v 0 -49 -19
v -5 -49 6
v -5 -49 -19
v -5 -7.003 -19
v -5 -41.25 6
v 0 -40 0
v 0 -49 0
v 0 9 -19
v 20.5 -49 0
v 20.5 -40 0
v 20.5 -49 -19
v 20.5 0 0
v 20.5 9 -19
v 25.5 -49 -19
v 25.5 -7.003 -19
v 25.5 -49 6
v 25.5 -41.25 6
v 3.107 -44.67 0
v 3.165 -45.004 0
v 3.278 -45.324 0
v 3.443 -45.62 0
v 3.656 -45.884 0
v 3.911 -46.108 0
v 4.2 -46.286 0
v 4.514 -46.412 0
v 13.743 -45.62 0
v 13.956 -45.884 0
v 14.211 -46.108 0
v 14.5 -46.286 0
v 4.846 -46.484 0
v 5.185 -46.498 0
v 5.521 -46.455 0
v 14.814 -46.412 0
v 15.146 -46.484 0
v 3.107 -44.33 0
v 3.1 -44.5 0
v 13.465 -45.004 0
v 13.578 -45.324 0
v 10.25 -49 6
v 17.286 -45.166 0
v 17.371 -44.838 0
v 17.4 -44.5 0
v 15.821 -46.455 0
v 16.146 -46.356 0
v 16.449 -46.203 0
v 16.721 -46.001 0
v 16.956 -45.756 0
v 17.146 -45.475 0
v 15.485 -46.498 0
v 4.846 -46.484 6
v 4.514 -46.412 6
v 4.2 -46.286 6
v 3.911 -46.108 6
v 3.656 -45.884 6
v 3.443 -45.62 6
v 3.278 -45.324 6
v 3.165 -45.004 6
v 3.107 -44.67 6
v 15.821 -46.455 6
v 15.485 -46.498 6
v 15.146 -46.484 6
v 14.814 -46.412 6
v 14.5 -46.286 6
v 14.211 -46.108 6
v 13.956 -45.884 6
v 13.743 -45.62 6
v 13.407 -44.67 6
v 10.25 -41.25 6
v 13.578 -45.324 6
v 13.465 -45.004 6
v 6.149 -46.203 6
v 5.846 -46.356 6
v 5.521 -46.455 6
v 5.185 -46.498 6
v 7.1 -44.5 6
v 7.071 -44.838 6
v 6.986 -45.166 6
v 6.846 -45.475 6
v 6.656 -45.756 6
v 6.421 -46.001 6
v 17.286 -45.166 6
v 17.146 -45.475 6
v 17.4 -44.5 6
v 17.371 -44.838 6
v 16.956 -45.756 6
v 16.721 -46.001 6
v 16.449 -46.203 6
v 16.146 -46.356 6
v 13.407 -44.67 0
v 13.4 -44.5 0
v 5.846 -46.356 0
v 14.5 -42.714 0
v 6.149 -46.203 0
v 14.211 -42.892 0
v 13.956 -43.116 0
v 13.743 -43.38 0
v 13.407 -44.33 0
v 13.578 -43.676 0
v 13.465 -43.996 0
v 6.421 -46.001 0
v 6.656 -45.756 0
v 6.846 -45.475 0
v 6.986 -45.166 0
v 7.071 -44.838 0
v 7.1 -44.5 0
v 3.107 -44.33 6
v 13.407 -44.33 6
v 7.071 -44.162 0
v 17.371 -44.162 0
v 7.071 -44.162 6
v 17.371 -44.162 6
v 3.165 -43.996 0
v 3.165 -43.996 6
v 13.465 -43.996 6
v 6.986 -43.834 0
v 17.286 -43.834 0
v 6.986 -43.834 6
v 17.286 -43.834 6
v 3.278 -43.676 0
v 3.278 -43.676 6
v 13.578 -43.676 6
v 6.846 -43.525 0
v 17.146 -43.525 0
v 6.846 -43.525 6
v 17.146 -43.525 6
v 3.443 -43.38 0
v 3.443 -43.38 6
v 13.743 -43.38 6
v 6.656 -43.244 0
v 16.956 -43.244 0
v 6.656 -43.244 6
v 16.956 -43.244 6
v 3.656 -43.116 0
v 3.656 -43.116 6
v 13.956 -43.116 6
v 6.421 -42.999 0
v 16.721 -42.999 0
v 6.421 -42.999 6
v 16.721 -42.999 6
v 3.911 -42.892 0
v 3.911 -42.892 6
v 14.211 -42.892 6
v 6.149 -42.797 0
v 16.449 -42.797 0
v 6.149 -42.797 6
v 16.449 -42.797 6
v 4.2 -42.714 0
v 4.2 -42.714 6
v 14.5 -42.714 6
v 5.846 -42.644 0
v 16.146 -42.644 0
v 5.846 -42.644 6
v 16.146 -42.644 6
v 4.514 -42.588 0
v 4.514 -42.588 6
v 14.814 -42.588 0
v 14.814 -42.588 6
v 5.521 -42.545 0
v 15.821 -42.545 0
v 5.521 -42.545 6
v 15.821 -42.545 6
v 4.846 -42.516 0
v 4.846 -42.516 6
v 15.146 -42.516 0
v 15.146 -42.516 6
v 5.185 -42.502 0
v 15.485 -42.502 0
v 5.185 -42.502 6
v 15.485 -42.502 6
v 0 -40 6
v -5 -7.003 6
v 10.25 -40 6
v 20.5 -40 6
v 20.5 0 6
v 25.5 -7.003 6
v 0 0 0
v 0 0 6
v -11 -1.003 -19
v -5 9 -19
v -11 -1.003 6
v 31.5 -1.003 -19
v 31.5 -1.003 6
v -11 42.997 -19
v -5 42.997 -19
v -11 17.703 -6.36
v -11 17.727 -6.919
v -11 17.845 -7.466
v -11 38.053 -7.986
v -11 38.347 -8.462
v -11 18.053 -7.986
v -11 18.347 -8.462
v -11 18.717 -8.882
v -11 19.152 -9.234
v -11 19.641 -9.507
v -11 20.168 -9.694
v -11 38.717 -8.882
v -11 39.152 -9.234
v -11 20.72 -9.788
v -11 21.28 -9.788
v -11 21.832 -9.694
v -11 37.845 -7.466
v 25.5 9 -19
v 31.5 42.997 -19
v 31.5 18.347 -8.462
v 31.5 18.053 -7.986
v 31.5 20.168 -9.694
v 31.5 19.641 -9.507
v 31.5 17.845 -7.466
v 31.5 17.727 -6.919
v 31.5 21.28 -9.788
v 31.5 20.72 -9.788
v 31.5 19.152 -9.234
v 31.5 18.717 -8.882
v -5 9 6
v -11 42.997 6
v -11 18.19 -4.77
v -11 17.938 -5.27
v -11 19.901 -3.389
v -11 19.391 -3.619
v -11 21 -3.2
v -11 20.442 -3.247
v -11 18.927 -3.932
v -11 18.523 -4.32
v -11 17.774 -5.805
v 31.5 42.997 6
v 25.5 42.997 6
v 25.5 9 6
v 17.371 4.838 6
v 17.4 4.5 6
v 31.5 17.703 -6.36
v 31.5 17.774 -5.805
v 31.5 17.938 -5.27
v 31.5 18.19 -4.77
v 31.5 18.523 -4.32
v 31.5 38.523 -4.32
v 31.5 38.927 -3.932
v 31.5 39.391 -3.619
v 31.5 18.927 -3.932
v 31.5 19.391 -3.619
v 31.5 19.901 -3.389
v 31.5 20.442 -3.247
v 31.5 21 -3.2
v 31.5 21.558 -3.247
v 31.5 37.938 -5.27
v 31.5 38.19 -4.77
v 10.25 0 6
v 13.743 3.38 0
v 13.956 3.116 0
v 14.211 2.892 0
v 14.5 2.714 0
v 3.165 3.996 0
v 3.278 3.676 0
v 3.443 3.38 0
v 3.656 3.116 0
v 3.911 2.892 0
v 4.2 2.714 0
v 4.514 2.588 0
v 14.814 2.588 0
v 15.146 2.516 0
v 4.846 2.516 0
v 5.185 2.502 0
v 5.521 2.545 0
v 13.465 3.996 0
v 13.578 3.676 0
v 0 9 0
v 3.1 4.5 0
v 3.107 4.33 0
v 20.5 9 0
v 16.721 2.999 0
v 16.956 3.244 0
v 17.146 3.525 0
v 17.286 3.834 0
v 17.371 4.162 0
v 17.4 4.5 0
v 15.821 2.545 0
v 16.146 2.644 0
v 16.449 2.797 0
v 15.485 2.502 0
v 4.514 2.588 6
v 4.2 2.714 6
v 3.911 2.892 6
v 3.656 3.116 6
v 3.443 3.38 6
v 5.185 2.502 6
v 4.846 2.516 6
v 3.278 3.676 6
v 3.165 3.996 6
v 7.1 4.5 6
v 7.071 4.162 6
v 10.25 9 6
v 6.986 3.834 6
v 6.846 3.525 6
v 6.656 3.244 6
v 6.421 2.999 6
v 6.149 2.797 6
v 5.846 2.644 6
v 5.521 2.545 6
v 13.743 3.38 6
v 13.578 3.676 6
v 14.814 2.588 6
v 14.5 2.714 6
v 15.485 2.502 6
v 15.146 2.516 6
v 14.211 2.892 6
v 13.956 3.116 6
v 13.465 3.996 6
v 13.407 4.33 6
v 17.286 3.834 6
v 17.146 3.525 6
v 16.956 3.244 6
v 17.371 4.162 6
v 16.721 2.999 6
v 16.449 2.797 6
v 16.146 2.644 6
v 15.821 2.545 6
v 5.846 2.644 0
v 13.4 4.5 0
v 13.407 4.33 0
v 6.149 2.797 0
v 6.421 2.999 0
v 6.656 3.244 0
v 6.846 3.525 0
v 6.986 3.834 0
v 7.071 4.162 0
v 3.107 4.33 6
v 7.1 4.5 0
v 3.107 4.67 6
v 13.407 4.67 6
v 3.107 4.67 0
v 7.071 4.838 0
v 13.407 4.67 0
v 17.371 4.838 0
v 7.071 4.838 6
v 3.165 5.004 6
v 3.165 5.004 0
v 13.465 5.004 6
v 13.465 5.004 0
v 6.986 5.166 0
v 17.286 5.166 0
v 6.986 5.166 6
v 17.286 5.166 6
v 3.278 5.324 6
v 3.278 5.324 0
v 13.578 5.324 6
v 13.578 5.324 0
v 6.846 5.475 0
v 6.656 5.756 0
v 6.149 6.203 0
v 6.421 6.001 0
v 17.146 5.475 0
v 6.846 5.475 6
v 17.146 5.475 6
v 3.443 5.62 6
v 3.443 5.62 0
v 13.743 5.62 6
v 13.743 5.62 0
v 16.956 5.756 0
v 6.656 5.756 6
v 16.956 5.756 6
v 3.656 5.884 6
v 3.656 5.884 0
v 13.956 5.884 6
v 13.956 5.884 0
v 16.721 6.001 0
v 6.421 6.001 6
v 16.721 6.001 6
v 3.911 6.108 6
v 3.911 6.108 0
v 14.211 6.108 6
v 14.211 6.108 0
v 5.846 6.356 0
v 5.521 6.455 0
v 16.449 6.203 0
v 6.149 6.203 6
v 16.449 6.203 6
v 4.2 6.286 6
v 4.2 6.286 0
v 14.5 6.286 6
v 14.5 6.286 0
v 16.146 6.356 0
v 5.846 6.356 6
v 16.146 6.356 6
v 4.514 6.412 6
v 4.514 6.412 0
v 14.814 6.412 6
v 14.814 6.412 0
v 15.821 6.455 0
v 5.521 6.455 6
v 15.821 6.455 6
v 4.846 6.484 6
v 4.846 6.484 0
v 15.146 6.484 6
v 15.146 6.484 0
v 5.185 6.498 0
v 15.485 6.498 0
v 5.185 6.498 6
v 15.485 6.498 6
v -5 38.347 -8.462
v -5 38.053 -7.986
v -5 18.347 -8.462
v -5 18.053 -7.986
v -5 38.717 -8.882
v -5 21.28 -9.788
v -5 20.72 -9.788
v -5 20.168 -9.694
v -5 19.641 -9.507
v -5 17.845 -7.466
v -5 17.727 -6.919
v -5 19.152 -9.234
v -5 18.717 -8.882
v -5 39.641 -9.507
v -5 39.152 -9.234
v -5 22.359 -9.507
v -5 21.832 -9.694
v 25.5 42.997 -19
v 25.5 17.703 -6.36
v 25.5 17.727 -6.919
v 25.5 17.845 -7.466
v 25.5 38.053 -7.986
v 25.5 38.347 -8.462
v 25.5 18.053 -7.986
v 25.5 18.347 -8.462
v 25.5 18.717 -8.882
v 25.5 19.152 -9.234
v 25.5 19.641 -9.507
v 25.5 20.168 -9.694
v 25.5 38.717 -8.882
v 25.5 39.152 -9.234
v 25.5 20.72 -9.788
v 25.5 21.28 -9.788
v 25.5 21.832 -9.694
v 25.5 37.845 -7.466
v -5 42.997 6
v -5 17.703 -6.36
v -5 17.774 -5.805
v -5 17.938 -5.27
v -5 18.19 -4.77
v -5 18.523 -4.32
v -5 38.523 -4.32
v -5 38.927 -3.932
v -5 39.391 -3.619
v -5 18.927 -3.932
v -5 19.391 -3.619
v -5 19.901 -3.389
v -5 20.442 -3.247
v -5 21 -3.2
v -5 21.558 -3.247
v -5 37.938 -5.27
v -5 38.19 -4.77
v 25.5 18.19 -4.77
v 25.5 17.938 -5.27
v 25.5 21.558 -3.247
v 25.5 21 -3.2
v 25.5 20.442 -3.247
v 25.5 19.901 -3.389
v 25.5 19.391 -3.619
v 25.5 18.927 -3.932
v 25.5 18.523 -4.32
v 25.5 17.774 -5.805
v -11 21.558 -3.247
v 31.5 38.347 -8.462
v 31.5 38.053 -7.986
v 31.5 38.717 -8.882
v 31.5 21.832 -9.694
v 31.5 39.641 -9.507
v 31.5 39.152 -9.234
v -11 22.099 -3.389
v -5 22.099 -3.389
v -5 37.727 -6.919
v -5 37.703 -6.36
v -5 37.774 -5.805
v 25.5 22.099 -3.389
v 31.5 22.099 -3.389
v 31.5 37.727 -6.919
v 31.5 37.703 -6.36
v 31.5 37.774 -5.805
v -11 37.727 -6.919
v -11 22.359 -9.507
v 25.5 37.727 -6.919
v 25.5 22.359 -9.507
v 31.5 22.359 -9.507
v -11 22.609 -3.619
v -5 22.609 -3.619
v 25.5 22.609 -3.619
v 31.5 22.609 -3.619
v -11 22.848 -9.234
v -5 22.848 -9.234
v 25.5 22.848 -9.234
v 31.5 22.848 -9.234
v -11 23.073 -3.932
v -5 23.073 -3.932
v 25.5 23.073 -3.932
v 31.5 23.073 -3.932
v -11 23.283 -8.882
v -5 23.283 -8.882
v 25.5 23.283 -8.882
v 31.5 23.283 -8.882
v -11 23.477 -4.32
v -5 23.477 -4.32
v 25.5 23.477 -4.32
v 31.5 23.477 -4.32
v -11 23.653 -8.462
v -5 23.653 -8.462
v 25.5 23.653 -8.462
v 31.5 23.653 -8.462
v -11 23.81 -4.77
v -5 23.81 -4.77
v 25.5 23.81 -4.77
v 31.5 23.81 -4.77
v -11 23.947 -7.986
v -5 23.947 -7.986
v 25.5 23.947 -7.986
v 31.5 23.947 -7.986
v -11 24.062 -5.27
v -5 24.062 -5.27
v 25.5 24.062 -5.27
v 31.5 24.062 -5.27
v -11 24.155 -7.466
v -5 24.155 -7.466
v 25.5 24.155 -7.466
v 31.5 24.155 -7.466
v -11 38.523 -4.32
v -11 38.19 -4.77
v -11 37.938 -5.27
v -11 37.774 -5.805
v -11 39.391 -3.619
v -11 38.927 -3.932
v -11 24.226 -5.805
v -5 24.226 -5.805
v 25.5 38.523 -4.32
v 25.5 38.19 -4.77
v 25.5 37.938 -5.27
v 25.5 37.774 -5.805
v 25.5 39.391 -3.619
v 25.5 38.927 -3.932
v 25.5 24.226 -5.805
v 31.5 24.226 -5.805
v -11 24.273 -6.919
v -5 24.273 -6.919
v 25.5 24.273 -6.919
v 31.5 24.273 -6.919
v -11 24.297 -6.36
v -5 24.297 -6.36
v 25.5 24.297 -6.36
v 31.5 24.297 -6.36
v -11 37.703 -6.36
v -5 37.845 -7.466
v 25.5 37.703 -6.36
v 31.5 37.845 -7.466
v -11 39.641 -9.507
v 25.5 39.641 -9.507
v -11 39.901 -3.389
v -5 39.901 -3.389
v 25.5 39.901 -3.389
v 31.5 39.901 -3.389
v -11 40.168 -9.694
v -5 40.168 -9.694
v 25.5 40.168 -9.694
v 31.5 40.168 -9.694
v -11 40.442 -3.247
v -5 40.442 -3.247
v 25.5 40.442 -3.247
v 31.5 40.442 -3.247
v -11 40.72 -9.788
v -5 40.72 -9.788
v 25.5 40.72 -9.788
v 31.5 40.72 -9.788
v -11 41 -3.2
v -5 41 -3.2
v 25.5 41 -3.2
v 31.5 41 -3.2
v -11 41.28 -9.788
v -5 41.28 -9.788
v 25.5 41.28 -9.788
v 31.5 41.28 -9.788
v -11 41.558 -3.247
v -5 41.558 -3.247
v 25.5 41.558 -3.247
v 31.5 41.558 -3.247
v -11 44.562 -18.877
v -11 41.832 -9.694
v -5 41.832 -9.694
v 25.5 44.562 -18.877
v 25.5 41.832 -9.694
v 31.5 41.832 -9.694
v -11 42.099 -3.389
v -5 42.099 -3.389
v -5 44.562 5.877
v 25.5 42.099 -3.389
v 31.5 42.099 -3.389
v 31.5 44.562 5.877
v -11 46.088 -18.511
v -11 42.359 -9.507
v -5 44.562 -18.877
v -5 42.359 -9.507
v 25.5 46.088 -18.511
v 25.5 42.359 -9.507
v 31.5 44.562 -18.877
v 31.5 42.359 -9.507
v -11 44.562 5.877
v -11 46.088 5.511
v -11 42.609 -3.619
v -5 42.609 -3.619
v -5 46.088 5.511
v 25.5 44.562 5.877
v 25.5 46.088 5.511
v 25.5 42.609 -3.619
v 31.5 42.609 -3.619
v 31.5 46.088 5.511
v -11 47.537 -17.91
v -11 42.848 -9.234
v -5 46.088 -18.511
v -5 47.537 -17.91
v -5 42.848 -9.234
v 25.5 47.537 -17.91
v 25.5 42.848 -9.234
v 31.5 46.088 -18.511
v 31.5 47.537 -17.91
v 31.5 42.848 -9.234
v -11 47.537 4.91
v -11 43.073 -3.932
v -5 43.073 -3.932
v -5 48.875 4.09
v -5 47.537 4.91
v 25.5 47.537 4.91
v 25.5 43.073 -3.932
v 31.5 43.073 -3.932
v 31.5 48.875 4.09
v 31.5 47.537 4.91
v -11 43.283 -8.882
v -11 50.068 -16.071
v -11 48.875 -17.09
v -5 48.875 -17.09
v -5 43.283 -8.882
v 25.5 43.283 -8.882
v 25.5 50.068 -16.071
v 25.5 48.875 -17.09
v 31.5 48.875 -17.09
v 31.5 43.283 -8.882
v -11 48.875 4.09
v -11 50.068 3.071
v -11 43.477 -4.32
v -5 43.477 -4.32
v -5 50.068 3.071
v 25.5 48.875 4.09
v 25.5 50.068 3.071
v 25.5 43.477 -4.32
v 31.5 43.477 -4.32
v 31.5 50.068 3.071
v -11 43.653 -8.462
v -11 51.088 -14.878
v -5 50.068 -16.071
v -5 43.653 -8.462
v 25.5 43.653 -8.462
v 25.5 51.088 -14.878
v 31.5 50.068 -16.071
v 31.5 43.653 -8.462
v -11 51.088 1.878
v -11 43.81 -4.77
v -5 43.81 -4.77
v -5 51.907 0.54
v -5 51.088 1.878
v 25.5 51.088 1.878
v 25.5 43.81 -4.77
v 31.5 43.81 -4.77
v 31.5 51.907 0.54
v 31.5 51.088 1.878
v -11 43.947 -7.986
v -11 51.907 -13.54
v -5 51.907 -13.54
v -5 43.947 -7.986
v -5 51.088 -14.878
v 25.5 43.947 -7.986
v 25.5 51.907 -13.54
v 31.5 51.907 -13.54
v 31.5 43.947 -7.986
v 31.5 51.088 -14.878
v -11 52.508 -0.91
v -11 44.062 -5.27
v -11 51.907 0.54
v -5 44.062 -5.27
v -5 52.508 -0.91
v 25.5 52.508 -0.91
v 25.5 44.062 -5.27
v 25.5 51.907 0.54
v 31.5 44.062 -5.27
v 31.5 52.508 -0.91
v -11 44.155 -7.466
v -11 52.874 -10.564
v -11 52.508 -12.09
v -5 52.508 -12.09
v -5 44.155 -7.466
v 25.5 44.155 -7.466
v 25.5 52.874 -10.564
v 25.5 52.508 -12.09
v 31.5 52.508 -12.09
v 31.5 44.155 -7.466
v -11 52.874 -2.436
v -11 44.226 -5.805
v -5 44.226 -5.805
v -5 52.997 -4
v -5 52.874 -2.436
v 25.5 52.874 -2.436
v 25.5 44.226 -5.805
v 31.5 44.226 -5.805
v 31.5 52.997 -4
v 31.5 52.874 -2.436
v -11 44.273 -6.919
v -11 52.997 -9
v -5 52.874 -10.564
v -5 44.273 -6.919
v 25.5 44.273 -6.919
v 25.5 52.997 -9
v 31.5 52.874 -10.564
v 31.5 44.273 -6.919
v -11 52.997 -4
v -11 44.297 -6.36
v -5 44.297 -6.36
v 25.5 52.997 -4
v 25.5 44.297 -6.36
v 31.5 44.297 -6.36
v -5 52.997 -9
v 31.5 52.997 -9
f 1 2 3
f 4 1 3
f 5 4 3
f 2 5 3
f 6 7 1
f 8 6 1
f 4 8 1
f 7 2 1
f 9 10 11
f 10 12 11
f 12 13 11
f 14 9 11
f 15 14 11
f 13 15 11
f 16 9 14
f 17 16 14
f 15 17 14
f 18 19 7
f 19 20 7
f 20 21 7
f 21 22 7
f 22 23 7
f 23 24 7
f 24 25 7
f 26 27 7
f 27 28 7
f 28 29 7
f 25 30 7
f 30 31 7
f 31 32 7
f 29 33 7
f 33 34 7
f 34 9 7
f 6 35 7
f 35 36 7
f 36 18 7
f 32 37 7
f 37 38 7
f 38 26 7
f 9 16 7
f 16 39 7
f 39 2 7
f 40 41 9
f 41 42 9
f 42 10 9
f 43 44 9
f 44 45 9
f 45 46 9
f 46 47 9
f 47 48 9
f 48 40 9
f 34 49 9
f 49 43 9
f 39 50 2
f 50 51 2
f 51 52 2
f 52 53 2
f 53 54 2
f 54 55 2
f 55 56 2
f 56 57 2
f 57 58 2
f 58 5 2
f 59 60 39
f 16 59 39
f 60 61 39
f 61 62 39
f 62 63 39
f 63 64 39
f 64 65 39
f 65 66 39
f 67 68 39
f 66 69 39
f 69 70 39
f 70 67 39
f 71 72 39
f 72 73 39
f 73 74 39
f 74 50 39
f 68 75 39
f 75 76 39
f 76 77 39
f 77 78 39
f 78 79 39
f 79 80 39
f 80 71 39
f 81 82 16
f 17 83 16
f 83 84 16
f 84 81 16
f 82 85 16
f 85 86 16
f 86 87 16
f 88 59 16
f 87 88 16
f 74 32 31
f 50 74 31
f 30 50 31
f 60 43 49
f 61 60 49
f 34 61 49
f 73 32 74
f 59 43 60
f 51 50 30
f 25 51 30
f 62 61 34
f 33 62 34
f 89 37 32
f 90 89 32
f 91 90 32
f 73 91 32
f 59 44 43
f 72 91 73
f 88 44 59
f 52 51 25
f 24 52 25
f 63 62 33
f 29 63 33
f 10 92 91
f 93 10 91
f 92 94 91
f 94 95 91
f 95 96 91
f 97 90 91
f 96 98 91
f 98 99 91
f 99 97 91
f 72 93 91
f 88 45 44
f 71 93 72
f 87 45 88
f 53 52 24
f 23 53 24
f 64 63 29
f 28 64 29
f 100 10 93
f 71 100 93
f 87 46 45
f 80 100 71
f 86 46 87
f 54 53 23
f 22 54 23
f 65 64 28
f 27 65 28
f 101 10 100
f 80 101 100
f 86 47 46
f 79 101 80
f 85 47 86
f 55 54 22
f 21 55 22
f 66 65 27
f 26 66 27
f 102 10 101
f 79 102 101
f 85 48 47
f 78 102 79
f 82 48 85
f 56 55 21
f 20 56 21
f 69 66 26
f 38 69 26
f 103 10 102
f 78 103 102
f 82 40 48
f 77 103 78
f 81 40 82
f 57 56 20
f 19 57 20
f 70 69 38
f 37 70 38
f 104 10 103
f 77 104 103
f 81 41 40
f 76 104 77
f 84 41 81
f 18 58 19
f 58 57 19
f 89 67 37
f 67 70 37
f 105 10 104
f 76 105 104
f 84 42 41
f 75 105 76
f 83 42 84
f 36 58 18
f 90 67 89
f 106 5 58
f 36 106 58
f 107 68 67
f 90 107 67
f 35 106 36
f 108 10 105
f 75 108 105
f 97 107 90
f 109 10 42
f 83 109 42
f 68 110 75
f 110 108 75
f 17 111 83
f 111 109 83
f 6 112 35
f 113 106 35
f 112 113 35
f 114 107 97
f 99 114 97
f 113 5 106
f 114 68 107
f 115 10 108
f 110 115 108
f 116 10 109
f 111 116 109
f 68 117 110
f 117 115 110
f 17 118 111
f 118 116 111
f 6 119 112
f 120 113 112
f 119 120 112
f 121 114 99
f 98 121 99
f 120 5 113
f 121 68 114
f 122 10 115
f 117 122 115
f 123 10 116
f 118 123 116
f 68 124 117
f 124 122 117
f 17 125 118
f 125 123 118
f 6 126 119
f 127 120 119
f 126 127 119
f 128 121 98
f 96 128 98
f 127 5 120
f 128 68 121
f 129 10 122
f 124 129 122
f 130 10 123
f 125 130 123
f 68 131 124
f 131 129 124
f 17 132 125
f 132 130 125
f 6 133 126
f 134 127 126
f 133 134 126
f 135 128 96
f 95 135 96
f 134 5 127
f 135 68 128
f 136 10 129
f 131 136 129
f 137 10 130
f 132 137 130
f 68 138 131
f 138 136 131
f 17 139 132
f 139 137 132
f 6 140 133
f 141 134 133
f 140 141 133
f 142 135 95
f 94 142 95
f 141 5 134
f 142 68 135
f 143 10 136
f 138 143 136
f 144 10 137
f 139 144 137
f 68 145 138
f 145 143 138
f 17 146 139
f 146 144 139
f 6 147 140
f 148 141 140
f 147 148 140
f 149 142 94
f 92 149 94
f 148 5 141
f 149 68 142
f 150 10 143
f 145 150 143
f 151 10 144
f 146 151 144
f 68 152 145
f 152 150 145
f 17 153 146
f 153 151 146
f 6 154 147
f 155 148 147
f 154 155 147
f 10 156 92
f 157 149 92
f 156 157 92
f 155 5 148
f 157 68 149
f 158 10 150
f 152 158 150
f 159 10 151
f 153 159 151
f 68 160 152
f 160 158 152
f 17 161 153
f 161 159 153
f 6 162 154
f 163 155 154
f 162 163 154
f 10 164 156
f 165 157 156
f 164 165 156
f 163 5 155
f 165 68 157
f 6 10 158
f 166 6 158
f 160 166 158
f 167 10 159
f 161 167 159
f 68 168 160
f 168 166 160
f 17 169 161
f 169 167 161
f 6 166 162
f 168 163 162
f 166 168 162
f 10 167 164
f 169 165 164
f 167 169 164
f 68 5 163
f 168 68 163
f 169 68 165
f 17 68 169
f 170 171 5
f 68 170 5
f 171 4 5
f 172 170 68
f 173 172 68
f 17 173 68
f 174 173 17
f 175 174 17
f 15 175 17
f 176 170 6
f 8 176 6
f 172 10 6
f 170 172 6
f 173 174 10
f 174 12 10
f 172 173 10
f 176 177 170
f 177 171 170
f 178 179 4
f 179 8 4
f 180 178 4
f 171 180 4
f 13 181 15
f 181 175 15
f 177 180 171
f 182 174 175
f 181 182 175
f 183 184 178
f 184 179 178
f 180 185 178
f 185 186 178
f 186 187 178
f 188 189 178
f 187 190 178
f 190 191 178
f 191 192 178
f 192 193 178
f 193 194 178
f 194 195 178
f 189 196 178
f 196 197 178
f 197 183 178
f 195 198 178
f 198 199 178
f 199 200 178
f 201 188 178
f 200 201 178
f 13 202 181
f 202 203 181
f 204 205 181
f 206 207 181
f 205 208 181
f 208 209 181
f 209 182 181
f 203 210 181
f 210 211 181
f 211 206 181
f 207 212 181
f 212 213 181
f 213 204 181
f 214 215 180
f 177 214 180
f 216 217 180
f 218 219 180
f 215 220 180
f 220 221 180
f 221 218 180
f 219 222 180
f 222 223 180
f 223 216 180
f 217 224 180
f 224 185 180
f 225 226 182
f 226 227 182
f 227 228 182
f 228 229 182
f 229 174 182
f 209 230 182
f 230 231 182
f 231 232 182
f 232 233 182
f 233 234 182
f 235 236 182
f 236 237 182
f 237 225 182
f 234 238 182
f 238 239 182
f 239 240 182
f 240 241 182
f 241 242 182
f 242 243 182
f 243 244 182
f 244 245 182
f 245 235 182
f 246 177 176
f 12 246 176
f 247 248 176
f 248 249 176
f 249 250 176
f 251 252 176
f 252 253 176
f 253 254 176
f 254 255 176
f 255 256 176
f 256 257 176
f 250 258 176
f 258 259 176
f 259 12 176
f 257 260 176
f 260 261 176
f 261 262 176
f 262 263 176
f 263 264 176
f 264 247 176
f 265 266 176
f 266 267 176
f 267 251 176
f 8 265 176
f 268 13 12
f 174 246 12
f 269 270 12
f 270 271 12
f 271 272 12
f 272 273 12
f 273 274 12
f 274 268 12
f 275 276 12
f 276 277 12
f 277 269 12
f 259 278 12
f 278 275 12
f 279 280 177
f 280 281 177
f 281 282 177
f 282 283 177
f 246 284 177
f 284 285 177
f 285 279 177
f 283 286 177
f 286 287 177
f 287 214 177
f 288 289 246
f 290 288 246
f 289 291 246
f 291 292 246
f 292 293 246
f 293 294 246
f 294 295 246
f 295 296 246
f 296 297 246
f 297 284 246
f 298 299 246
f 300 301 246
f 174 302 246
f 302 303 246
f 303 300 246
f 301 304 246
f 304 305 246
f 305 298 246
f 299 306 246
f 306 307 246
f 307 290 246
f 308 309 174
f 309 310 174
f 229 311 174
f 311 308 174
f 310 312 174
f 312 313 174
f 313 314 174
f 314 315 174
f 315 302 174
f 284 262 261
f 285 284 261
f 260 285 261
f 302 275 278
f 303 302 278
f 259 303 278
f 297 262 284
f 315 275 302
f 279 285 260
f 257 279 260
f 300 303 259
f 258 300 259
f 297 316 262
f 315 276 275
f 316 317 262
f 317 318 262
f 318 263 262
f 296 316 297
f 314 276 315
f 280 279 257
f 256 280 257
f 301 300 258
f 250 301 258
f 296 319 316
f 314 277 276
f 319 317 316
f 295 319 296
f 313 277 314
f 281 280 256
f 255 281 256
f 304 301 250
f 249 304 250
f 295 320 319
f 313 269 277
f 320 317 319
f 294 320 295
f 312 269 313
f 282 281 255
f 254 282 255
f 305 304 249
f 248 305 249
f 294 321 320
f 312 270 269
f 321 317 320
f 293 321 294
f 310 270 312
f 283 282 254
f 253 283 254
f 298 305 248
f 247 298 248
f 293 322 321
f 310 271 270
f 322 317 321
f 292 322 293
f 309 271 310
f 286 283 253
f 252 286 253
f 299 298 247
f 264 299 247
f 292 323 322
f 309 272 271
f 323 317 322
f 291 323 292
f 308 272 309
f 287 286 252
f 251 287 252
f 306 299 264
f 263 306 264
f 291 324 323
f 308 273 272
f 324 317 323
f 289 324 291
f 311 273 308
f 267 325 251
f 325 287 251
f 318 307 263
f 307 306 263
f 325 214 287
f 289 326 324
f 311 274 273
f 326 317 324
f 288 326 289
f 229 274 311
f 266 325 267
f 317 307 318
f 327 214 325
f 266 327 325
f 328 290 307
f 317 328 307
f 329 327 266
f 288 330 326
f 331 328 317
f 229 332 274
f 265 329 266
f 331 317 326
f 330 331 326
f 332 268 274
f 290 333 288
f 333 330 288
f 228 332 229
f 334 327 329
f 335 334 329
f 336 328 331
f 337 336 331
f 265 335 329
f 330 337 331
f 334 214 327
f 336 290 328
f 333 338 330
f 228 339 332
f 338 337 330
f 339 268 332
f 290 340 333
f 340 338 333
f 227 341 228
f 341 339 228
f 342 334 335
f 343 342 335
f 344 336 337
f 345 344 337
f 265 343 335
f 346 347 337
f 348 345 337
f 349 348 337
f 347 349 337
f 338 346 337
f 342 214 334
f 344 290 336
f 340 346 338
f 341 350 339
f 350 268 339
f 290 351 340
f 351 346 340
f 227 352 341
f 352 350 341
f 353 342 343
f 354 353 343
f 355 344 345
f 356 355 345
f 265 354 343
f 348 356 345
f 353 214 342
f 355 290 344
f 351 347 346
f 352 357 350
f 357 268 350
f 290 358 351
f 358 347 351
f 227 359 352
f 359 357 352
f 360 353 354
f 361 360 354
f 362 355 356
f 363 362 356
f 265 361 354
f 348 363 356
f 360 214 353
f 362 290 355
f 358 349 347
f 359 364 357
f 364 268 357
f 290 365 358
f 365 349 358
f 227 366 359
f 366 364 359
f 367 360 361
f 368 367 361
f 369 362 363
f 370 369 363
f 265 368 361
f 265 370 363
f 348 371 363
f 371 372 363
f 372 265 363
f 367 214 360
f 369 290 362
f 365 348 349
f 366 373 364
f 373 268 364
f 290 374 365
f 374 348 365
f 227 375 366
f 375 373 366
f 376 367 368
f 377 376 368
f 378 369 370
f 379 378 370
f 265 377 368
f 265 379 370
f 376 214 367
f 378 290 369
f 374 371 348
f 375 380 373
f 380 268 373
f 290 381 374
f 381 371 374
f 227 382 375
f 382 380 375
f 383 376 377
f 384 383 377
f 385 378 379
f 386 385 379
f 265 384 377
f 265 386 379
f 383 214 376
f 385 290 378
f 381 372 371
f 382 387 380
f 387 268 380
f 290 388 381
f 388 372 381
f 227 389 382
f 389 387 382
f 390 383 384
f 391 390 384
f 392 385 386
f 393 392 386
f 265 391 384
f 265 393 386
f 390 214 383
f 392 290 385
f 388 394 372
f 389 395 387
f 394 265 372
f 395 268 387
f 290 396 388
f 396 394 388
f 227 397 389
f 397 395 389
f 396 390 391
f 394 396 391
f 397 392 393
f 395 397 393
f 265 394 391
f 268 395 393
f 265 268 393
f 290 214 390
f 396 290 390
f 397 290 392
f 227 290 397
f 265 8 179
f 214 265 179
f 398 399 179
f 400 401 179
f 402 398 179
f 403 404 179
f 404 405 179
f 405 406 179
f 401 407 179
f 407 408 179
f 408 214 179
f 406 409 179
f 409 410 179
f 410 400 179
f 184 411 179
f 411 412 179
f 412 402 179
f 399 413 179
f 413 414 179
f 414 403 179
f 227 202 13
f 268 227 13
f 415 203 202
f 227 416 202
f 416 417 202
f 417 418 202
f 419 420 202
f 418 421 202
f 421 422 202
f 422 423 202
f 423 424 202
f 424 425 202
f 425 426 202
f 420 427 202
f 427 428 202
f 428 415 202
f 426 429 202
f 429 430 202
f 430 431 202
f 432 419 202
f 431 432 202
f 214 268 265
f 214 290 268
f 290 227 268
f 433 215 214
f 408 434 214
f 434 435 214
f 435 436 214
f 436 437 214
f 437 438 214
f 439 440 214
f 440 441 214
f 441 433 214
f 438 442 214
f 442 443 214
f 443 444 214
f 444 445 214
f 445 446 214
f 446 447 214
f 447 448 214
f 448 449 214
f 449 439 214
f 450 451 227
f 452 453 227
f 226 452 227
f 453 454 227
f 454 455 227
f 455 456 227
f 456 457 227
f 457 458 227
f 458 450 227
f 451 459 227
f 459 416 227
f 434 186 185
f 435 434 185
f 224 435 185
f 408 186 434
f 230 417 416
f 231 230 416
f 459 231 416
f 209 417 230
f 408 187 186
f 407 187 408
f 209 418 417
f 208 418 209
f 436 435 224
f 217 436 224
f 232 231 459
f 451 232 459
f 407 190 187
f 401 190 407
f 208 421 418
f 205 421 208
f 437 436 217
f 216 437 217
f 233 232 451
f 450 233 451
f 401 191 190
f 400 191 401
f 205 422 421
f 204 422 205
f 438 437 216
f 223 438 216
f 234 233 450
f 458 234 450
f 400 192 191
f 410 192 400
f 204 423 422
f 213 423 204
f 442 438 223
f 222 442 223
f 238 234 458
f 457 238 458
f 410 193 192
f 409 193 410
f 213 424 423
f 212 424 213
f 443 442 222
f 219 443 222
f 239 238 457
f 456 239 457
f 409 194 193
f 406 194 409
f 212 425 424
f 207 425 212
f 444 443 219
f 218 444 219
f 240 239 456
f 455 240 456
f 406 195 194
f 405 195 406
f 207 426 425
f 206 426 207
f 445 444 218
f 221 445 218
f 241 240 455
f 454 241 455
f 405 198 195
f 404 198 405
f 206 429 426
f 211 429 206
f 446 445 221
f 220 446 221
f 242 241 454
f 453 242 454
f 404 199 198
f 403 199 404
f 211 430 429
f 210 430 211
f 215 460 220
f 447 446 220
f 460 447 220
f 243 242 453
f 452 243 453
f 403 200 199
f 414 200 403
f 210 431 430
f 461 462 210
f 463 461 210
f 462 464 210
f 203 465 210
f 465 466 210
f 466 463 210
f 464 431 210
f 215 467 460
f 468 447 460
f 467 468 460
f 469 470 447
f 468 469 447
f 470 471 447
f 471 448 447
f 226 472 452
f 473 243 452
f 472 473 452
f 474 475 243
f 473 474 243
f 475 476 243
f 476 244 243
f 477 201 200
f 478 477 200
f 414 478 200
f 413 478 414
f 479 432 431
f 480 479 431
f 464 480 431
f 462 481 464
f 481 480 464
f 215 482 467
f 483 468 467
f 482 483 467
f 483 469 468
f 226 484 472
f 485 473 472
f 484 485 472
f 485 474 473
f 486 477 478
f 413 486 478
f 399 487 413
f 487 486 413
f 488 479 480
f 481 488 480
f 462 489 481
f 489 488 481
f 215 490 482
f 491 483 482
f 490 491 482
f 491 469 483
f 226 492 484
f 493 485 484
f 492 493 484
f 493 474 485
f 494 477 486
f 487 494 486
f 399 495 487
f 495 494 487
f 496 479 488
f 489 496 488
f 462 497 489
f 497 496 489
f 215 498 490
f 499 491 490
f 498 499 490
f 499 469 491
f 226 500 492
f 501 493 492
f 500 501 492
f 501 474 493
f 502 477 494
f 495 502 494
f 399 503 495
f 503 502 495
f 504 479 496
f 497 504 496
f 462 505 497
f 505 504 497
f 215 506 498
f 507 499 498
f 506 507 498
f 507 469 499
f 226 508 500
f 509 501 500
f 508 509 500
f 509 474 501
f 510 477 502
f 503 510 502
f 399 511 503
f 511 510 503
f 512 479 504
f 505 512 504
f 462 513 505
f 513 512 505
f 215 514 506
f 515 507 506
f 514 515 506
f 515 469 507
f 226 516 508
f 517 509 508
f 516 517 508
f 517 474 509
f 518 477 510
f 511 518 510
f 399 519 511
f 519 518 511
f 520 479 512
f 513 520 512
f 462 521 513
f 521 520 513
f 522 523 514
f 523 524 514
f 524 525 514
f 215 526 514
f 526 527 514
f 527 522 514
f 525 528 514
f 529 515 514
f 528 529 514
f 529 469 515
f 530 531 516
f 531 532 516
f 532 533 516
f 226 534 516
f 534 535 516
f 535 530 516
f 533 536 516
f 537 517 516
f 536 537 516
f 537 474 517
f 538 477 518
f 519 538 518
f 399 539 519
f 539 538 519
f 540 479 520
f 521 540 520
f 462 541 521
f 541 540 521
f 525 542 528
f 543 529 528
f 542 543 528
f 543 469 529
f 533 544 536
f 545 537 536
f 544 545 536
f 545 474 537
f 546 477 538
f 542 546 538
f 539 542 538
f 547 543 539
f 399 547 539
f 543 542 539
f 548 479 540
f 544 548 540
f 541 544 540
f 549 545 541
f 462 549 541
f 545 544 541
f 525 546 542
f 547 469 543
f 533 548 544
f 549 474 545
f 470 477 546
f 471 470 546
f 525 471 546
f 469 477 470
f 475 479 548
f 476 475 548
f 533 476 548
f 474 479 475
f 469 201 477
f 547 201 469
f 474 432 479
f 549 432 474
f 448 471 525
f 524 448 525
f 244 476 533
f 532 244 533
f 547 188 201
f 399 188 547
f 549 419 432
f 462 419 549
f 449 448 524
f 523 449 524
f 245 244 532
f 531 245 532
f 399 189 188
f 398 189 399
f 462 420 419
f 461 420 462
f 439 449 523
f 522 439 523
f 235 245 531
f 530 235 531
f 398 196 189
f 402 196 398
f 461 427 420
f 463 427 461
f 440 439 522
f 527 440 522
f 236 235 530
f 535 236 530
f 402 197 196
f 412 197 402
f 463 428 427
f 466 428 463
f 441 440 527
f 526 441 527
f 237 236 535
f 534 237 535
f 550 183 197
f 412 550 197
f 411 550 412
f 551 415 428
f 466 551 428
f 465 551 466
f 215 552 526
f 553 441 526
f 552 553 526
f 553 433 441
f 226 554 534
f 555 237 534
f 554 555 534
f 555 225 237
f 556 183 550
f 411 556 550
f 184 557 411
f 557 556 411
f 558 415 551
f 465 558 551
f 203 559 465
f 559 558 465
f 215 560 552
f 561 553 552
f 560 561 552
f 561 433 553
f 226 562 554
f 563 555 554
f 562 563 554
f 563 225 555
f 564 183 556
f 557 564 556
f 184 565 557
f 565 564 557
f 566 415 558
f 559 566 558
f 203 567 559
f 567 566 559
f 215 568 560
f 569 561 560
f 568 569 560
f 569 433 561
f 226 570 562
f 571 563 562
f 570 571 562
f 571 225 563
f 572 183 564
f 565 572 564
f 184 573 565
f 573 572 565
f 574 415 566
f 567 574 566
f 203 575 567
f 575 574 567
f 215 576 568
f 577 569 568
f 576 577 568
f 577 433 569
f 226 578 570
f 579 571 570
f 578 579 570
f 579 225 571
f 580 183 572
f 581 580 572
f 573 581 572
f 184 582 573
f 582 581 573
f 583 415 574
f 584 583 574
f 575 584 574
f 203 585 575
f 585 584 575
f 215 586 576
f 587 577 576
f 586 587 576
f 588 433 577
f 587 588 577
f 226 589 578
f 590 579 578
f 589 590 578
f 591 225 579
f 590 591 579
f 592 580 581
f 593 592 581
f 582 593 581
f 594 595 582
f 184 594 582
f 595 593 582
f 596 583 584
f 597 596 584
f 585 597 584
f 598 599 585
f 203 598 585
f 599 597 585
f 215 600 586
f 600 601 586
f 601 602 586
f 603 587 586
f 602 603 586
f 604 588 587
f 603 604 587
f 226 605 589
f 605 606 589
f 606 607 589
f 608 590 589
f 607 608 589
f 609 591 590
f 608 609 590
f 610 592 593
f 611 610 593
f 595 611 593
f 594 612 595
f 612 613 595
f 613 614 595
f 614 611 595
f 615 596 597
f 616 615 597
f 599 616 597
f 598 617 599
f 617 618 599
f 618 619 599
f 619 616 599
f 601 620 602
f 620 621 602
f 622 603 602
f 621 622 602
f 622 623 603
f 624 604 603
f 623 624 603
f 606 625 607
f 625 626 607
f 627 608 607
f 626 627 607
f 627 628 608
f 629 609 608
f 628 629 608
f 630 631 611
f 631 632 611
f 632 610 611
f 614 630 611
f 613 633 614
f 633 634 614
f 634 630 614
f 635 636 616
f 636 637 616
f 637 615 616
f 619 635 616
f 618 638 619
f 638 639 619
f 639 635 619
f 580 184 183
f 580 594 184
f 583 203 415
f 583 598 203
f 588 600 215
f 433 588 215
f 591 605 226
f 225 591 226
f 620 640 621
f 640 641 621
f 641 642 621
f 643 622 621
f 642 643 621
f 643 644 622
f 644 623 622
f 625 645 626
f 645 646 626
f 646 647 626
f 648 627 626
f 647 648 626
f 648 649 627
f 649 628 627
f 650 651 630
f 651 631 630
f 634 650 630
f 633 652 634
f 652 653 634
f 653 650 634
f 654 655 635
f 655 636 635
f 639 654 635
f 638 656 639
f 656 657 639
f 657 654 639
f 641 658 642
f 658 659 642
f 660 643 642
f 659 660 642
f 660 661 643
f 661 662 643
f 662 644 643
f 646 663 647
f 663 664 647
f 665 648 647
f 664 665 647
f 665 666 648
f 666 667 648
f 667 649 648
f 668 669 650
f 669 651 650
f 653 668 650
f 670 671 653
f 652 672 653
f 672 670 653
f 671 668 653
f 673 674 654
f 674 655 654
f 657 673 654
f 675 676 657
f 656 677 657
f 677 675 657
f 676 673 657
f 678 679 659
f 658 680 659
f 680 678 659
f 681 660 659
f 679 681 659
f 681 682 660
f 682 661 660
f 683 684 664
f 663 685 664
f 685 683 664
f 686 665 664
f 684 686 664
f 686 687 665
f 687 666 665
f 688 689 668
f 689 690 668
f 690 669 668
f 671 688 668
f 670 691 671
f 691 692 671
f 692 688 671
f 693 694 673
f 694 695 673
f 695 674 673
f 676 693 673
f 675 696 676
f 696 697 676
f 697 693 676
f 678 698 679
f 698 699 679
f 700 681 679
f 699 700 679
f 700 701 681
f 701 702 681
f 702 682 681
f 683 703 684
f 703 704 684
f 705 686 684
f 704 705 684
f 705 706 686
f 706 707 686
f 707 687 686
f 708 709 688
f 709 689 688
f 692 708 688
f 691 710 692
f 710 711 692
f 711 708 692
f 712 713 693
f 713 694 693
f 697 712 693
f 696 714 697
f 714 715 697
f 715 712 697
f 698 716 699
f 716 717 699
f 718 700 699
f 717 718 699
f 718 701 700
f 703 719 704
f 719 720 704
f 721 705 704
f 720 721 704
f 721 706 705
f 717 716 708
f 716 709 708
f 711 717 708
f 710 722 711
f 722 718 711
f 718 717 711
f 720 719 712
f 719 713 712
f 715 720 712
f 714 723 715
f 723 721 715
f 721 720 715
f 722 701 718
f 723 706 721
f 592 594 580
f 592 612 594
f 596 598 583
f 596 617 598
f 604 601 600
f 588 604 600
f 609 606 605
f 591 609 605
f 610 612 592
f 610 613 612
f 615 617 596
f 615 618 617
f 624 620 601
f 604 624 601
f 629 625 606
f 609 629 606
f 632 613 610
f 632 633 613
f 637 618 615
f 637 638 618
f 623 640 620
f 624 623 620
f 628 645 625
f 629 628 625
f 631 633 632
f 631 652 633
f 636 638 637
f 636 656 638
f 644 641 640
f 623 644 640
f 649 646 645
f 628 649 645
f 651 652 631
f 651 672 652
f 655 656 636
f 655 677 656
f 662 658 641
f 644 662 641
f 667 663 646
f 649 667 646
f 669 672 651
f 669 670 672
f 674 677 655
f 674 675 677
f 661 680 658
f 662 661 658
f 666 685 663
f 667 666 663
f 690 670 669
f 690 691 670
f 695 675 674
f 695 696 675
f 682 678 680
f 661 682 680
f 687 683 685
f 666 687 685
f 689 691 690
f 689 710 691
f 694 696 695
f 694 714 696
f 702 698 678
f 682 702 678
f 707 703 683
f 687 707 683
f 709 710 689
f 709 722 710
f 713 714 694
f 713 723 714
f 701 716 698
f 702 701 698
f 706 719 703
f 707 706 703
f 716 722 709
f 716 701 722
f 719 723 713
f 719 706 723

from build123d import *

# Parameters (mm, degrees)
SKETCH1_W            = 20.5
SKETCH1_H            = 9
BOSS_EXTRUDE1_DEPTH  = 6
SKETCH2_W            = 25
SKETCH2_H            = 58
BOSS_EXTRUDE2_DEPTH  = 5
LPATTERN1_COUNT      = 2
LPATTERN1_PITCH      = 49
LPATTERN2_COUNT      = 2
LPATTERN2_PITCH      = 25.5
CUT_EXTRUDE1_REACH   = 62.632
SKETCH3_R            = 2
LPATTERN3_COUNT      = 2
LPATTERN3_PITCH      = 10.3
LPATTERN3_COUNT_DIR2 = 2
LPATTERN3_PITCH_DIR2 = 49
SKETCH8_W            = 25
SKETCH8_H            = 50
BOSS_EXTRUDE3_DEPTH  = 6
LPATTERN4_COUNT      = 2
LPATTERN4_PITCH      = 36.5
M6_CLEARANCE_HOLE1_D = 6.6
CHAMFER2_SIZE        = 10
LPATTERN5_COUNT      = 2
LPATTERN5_PITCH      = 20
FILLET1_R            = 10


with BuildPart() as part:
    # Sketch1 → Boss-Extrude1 (new body)
    with BuildSketch(Plane.XY):
        with Locations((10.25, 4.5)):
            Rectangle(SKETCH1_W, SKETCH1_H)
    boss_extrude1 = extrude(amount=BOSS_EXTRUDE1_DEPTH)

    # Sketch2 → Boss-Extrude2 (add)
    with BuildSketch(Plane(origin=(20.5, 0, 0), x_dir=(0, 0, -1), z_dir=(1, 0, 0))):
        with Locations((6.5, -20)):
            Rectangle(SKETCH2_W, SKETCH2_H)
    boss_extrude2 = extrude(amount=BOSS_EXTRUDE2_DEPTH)

    # LPattern1: Boss-Extrude1 ×2
    with Locations(*[(0, -i * LPATTERN1_PITCH, 0) for i in range(1, LPATTERN1_COUNT)]):
        add(boss_extrude1)

    # LPattern2: Boss-Extrude2 ×2
    with Locations(*[(-i * LPATTERN2_PITCH, 0, 0) for i in range(1, LPATTERN2_COUNT)]):
        add(boss_extrude2)

    # Sketch3 → Cut-Extrude1 (cut, up to next)
    with BuildSketch(Plane.XY.offset(6), mode=Mode.PRIVATE) as cut_extrude1_sk1:
        with Locations((5.1, 4.5)):
            Circle(SKETCH3_R)
    cut_extrude1_tool1 = extrude(cut_extrude1_sk1.sketch, amount=-CUT_EXTRUDE1_REACH, mode=Mode.PRIVATE) & part.part
    cut_extrude1 = cut_extrude1_tool1.solids().sort_by_distance((5.1, 4.5, 6))[0]
    add(cut_extrude1, mode=Mode.SUBTRACT)

    # LPattern3: Cut-Extrude1 2 × 2
    with Locations(*[(i * LPATTERN3_PITCH, -j * LPATTERN3_PITCH_DIR2, 0) for i in range(LPATTERN3_COUNT) for j in range(LPATTERN3_COUNT_DIR2) if (i, j) != (0, 0)]):
        add(cut_extrude1, mode=Mode.SUBTRACT)

    # Sketch8 → Boss-Extrude3 (add)
    with BuildSketch(Plane(origin=(25.5, 0, 0), x_dir=(0, 0, -1), z_dir=(1, 0, 0))):
        with Locations((6.5, 27.997404855)):
            Rectangle(SKETCH8_W, SKETCH8_H)
    boss_extrude3 = extrude(amount=BOSS_EXTRUDE3_DEPTH)

    # LPattern4: Boss-Extrude3 ×2
    with Locations(*[(-i * LPATTERN4_PITCH, 0, 0) for i in range(1, LPATTERN4_COUNT)]):
        add(boss_extrude3)

    # M6 Clearance Hole1 (through all)
    with Locations(Plane.ZY.offset(11)):
        with Locations((-6.5, 21)):
            m6_clearance_hole1 = Hole(M6_CLEARANCE_HOLE1_D / 2)

    # Chamfer2
    # the kernel refuses this chamfer: 10 mm, written as the material it adds along each edge
    with BuildSketch(Plane(origin=(-5, 2.997404855, 6), x_dir=(-0.9996219169112968, 0.027495876610586403, 0), z_dir=(0, 0, -1))) as chamfer2_piece_1_section:
        Polygon((CHAMFER2_SIZE * 0.999621916911, -CHAMFER2_SIZE * 0.0274958766106), (-CHAMFER2_SIZE * 0.0274958766106, -CHAMFER2_SIZE * 0.999621916911), (0, 0), align=None)
    chamfer2_piece_1 = extrude(amount=25, mode=Mode.PRIVATE)
    chamfer2_piece_1 = split(chamfer2_piece_1, bisect_by=Plane(origin=(-11, -0.75268974, -6.5), z_dir=(1, 0, 0)), keep=Keep.TOP, mode=Mode.PRIVATE)
    add(chamfer2_piece_1)
    with BuildSketch(Plane(origin=(25.5, 2.997404855, 6), x_dir=(-0.02749587661058666, -0.9996219169112968, 0), z_dir=(0, 0, -1))) as chamfer2_piece_2_section:
        Polygon((CHAMFER2_SIZE * 0.999621916911, -CHAMFER2_SIZE * 0.0274958766106), (-CHAMFER2_SIZE * 0.0274958766106, -CHAMFER2_SIZE * 0.999621916911), (0, 0), align=None)
    chamfer2_piece_2 = extrude(amount=25, mode=Mode.PRIVATE)
    chamfer2_piece_2 = split(chamfer2_piece_2, bisect_by=Plane(origin=(31.5, -0.75268974, -6.5), z_dir=(-1, 0, 0)), keep=Keep.TOP, mode=Mode.PRIVATE)
    add(chamfer2_piece_2)

    # LPattern5: M6 Clearance Hole1 ×2
    with Locations(*[(0, i * LPATTERN5_PITCH, 0) for i in range(1, LPATTERN5_COUNT)]):
        add(m6_clearance_hole1, mode=Mode.SUBTRACT)

    # Fillet1
    fillet1_edges = [part.edges().sort_by_distance(p)[0] for p in [
        (28.5, 52.997404855, 6),
        (28.5, 52.997404855, -19),
        (-8, 52.997404855, 6),
        (-8, 52.997404855, -19),
    ]]
    fillet(fillet1_edges, radius=FILLET1_R)


solid = part.part
